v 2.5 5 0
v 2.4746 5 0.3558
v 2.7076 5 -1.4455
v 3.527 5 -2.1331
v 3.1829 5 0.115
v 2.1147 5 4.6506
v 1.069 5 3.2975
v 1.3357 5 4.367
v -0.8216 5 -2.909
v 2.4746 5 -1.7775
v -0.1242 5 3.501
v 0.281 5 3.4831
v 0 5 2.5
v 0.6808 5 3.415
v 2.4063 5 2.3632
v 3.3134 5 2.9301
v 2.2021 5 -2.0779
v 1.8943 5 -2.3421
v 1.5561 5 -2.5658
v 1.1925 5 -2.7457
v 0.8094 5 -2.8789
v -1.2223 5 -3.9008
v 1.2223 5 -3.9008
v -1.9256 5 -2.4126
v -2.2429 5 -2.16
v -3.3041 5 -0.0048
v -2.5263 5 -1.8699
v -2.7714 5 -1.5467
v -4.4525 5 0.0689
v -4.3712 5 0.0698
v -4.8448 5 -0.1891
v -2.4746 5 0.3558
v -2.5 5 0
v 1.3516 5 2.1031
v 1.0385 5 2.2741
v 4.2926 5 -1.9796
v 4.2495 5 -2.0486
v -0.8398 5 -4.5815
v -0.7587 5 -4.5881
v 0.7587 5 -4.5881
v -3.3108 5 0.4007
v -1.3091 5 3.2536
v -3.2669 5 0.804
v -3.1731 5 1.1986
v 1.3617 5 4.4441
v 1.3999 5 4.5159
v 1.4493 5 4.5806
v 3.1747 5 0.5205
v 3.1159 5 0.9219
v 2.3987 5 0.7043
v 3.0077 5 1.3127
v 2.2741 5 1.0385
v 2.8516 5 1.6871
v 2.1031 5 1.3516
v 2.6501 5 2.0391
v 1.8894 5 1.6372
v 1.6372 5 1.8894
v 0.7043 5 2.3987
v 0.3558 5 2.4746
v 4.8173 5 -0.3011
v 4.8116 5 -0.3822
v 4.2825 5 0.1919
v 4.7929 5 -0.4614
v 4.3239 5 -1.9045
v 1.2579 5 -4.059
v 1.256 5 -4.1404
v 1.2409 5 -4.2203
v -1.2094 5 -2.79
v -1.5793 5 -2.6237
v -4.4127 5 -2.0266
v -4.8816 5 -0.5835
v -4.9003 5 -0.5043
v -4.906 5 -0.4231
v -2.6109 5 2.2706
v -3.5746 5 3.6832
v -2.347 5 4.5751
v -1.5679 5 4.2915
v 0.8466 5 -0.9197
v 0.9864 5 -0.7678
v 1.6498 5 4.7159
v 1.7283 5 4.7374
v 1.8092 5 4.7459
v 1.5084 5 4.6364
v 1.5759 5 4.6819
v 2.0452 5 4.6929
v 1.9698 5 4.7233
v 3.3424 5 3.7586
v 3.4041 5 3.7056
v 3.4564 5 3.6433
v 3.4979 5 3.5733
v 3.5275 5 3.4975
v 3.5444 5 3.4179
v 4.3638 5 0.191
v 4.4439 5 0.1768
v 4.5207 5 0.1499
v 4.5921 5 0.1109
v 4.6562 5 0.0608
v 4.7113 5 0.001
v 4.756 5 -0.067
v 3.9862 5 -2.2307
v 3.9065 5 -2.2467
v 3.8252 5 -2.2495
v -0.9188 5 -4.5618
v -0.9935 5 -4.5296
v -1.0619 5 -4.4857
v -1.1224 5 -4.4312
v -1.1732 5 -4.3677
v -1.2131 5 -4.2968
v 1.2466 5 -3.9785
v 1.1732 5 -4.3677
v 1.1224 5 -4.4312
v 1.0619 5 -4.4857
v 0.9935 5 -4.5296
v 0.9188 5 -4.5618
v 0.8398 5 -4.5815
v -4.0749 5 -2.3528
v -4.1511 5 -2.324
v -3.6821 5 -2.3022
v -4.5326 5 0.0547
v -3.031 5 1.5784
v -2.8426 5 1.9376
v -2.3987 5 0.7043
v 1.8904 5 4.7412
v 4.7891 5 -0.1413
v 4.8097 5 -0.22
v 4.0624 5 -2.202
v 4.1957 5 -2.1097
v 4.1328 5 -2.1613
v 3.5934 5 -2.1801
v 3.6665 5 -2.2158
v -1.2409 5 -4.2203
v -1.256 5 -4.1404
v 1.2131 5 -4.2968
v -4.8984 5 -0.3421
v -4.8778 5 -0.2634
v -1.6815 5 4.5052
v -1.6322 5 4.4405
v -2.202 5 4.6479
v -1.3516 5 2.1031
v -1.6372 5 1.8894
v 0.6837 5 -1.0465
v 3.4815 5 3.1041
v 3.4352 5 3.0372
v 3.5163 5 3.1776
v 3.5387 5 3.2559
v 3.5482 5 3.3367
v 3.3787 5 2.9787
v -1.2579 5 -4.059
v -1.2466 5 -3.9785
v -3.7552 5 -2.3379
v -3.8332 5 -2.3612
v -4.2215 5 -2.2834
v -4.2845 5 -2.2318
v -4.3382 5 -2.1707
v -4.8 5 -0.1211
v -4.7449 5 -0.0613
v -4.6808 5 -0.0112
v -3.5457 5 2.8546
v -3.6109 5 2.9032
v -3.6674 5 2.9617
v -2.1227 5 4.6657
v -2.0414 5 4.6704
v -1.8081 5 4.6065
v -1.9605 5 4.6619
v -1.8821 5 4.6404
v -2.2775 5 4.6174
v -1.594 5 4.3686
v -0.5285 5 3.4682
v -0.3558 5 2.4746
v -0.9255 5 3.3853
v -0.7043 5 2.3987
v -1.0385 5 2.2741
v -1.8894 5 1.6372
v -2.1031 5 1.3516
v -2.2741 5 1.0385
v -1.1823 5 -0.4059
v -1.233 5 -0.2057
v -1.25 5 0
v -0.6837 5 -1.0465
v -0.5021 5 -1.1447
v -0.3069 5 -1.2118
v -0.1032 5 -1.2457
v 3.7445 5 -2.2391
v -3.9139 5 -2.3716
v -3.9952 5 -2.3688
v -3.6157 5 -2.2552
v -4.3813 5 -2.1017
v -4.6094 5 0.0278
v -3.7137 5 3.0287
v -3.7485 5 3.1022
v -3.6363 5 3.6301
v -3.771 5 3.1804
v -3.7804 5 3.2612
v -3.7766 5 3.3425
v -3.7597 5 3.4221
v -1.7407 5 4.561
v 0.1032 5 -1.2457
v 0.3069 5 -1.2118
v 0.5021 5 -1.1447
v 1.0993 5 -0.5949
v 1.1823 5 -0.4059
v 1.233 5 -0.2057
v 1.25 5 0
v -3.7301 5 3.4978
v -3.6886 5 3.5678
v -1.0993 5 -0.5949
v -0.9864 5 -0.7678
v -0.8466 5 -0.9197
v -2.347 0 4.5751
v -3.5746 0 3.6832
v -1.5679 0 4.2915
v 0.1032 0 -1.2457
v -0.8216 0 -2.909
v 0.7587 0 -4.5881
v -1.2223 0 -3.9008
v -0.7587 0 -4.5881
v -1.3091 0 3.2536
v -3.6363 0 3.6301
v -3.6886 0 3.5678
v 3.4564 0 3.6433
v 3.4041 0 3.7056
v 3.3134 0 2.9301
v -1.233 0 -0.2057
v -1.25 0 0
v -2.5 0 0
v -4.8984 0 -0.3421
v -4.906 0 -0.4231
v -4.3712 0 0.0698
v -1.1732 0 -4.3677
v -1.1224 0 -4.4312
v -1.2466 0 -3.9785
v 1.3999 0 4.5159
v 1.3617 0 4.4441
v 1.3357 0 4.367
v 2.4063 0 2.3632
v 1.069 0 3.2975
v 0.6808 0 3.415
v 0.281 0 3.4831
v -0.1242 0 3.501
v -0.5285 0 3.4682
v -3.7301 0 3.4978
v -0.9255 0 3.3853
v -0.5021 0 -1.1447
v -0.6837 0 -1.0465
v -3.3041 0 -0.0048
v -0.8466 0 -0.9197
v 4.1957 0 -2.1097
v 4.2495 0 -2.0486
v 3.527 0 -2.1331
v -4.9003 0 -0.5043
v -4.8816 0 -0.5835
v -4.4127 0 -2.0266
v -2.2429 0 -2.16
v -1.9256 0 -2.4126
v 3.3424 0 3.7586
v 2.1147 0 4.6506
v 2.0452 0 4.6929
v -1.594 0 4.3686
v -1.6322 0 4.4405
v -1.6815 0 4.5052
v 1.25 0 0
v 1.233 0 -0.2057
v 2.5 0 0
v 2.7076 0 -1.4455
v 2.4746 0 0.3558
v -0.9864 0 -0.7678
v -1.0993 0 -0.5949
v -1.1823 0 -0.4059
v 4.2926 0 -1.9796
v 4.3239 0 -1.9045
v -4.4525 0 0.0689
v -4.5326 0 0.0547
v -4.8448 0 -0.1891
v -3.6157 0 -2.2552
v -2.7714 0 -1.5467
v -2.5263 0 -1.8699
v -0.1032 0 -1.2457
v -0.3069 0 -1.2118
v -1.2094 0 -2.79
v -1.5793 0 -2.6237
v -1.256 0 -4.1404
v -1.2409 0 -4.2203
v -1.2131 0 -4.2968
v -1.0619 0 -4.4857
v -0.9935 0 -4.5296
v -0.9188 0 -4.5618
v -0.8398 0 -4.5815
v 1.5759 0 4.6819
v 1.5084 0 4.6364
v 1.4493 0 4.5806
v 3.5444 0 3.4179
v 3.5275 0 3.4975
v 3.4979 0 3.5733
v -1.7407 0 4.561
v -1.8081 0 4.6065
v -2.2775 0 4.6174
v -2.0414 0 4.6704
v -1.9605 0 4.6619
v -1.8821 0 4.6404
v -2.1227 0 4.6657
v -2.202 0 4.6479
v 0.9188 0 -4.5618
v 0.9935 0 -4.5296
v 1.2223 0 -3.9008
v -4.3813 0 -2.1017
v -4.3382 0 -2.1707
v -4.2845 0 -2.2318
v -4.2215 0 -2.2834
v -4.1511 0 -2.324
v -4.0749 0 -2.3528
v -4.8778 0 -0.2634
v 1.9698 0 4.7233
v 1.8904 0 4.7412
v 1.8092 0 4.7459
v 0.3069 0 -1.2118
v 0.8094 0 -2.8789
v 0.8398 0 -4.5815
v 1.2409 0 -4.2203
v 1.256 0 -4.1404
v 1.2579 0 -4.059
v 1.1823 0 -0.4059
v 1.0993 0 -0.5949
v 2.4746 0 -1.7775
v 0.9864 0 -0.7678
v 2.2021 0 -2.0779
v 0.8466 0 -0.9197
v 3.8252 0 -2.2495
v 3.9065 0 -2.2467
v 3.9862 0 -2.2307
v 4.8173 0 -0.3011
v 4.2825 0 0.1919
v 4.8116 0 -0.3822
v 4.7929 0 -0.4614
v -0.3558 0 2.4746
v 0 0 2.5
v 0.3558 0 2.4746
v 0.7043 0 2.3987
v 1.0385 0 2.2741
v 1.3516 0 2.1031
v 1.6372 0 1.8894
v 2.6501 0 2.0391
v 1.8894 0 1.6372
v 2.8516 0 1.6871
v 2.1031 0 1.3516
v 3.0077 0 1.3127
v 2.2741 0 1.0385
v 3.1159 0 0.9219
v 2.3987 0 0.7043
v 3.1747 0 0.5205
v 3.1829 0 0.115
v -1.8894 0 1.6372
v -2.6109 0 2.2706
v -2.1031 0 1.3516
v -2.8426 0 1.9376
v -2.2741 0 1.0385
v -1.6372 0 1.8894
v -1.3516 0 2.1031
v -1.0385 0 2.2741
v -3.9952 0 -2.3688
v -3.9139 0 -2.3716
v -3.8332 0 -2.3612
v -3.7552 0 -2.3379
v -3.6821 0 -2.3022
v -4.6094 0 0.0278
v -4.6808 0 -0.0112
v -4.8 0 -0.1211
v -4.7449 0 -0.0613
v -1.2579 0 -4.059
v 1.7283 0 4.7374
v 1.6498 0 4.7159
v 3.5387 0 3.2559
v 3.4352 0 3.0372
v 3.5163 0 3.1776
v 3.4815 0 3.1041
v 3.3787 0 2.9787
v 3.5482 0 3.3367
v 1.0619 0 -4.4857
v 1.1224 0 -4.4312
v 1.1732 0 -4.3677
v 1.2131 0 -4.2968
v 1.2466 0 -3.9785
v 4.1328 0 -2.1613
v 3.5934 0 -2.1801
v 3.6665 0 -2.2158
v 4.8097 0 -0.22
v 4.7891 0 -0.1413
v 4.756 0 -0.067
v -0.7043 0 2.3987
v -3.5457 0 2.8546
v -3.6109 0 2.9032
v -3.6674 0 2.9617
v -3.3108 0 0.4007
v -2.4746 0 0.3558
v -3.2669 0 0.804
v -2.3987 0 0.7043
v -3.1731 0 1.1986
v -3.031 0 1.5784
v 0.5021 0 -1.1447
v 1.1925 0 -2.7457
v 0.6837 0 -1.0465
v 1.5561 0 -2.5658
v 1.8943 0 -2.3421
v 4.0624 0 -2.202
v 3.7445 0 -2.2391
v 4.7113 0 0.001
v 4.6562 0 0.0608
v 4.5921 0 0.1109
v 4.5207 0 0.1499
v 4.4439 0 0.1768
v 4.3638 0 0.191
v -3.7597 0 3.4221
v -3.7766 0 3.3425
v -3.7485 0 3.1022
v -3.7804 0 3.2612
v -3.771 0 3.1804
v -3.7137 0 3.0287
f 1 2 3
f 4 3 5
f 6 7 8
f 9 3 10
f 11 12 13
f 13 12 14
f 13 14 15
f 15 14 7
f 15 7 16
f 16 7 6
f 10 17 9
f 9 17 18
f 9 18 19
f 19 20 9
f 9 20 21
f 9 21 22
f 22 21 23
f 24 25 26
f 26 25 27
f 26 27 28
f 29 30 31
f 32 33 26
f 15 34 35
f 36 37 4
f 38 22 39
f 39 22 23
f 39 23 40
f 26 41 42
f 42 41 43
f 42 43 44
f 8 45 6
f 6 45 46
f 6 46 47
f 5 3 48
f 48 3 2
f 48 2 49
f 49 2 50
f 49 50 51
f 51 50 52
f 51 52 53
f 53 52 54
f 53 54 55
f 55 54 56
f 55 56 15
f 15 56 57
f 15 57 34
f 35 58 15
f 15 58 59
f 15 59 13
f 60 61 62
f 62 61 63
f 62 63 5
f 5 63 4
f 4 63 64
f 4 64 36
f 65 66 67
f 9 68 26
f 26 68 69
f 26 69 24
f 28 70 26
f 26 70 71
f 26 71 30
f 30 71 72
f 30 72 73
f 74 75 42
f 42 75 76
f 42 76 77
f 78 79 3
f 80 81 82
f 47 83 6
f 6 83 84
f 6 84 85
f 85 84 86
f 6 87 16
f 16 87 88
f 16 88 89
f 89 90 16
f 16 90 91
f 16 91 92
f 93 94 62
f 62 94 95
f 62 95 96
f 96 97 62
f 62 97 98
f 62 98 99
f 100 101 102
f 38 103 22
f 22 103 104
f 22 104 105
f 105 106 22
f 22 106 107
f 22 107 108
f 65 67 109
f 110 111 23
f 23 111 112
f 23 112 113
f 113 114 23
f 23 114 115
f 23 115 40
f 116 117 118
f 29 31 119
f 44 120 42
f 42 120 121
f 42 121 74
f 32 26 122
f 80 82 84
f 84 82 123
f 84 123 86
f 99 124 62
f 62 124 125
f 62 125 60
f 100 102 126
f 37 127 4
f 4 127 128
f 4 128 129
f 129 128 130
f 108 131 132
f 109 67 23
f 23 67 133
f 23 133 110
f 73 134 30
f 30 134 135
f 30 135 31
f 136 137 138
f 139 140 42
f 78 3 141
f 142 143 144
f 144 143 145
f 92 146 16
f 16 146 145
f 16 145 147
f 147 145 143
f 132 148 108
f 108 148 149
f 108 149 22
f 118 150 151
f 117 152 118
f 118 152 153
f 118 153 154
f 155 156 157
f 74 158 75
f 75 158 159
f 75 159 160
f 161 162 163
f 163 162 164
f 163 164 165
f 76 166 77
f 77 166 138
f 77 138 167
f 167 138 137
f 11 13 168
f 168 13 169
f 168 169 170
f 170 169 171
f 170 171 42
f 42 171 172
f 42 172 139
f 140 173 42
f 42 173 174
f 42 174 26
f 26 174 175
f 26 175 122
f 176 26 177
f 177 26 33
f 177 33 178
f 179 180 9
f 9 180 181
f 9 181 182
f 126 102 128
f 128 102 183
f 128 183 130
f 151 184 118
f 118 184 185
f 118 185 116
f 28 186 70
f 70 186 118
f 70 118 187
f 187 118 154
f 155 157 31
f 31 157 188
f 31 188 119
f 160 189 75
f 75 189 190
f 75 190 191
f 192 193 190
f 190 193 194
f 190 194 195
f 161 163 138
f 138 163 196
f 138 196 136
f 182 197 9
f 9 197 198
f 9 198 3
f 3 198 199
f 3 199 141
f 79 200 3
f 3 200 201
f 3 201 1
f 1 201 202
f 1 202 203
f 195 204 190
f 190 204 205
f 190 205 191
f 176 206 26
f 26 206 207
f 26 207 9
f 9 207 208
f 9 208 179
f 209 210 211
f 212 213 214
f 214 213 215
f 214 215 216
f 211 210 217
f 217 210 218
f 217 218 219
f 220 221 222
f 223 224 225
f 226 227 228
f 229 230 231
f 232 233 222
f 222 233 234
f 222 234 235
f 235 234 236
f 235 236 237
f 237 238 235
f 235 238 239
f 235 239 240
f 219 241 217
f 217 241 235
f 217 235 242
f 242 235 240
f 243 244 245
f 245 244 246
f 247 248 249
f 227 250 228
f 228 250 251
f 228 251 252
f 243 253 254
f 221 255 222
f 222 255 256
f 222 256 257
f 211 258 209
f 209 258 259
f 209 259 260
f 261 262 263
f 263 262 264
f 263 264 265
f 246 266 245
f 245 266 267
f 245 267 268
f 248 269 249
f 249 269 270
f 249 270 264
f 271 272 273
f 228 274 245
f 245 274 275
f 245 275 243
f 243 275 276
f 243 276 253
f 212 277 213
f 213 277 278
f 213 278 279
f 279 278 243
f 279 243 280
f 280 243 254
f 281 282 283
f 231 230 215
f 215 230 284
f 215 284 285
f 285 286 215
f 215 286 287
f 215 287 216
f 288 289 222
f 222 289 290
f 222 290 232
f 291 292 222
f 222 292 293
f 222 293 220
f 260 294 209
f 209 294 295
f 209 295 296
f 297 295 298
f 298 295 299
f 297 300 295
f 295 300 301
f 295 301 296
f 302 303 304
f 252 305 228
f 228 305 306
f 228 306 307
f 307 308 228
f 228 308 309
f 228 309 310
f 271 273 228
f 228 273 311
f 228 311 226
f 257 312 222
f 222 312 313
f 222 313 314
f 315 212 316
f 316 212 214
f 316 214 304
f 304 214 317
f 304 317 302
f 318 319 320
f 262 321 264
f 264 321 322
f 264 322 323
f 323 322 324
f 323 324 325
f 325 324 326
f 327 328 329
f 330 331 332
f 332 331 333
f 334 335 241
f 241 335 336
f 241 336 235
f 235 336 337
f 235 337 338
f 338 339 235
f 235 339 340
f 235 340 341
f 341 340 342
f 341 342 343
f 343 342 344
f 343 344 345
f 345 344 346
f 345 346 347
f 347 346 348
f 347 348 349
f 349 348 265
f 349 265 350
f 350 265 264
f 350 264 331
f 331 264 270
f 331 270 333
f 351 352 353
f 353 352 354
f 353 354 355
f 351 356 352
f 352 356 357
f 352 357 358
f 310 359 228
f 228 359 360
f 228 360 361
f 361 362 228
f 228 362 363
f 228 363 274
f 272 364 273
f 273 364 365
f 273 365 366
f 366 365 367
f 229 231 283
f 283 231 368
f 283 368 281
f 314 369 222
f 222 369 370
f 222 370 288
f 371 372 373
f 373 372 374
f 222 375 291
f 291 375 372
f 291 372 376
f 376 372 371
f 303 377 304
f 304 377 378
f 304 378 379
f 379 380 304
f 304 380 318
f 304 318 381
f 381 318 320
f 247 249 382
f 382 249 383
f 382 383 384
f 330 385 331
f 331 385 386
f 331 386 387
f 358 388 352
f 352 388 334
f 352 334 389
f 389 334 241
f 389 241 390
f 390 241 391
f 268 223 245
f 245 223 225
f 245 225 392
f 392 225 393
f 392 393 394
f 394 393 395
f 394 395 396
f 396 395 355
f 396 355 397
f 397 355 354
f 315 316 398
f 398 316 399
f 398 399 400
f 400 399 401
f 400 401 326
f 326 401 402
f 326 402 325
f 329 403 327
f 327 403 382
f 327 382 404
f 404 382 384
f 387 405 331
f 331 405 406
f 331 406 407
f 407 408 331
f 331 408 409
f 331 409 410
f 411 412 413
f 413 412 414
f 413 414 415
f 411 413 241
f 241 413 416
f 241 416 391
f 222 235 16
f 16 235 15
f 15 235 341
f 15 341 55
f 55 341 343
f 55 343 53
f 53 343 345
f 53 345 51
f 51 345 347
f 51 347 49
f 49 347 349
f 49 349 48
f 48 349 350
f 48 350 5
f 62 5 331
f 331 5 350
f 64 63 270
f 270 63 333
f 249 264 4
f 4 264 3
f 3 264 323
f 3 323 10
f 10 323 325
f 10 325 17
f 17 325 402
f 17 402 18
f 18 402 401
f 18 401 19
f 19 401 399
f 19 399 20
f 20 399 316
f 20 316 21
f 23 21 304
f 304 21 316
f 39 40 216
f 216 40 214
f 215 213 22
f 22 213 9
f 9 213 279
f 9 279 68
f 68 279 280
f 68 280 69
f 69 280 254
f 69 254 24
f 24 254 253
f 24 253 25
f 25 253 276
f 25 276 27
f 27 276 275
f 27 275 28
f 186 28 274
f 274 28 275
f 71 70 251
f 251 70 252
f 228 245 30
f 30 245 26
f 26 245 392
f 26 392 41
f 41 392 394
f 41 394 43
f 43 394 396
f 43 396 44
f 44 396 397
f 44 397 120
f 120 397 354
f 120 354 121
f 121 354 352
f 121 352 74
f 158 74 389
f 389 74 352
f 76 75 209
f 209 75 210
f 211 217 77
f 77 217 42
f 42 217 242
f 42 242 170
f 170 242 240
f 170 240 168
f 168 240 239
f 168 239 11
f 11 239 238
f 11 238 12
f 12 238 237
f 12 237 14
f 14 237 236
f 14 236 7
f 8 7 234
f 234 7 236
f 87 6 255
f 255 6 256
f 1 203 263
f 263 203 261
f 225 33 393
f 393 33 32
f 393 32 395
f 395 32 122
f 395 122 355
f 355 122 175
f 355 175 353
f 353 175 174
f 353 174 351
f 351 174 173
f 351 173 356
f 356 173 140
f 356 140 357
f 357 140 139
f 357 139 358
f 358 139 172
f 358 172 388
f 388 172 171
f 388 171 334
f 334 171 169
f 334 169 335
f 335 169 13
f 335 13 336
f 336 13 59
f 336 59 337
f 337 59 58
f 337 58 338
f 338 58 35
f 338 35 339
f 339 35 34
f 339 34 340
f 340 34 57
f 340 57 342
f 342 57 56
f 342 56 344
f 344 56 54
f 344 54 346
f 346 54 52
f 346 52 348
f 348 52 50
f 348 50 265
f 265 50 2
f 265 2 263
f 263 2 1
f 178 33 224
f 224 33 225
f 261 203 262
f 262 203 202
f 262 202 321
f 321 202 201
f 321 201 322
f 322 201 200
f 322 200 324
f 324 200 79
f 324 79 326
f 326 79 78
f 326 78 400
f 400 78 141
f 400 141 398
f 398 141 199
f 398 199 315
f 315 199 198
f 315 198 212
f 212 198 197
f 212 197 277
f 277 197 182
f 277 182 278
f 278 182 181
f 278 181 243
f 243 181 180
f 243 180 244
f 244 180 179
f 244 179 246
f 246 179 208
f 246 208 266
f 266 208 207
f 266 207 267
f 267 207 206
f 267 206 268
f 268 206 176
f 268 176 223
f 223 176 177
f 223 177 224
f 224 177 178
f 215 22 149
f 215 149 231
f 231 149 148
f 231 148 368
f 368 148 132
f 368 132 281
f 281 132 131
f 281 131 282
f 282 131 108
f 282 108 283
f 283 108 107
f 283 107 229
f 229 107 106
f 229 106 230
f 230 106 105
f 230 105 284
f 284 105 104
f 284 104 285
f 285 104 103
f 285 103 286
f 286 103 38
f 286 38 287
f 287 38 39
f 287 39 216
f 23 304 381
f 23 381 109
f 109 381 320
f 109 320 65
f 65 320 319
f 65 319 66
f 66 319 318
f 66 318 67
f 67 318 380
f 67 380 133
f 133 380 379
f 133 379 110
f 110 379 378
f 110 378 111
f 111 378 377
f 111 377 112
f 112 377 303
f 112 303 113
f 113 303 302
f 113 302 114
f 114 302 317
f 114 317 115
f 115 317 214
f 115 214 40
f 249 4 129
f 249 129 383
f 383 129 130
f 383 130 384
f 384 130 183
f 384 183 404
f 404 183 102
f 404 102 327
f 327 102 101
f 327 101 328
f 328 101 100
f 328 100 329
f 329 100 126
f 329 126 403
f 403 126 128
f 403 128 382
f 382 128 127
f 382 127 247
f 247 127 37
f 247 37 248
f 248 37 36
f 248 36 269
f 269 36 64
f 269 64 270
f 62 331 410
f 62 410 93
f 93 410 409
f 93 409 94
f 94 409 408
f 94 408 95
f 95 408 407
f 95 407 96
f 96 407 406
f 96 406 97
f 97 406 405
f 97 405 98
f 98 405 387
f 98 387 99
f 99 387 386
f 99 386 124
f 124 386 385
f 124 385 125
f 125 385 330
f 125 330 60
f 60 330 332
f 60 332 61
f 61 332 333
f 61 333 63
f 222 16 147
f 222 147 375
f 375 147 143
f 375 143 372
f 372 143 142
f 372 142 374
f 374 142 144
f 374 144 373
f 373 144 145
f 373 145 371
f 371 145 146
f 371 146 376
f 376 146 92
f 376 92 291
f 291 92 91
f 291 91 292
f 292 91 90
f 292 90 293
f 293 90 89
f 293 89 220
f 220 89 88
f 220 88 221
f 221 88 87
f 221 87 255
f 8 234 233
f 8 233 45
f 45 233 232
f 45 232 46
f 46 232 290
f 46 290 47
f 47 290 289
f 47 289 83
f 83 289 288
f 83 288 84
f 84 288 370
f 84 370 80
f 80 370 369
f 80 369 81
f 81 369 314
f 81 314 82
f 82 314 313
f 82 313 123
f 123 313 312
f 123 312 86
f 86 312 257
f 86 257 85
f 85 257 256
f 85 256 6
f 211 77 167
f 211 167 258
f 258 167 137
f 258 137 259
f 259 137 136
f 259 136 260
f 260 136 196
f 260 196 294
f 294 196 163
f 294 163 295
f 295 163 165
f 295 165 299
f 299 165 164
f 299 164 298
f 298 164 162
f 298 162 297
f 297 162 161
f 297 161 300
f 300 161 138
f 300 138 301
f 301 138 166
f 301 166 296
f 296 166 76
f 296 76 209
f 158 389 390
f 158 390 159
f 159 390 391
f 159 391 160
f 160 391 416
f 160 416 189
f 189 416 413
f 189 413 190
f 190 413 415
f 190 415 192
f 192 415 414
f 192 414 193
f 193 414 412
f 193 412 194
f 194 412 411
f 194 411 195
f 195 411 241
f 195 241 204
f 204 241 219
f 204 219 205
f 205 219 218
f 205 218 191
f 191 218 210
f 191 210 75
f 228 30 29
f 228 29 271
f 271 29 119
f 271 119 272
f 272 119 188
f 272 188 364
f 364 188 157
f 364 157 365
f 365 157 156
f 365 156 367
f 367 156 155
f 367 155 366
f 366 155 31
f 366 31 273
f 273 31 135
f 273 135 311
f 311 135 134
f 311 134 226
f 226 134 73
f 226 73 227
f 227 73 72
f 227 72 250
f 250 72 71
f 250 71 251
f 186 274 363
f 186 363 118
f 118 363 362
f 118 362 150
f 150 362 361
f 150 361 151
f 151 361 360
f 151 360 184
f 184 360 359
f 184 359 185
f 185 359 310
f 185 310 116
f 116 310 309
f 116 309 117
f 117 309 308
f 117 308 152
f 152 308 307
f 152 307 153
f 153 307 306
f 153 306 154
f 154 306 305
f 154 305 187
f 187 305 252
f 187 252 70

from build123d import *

# Parameters (mm, degrees)
BOSS_EXTRUDE1_DEPTH = 5
CUT_EXTRUDE1_DEPTH  = 10
FILLET1_R           = 0.5


with BuildPart() as part:
    # Sketch1 → Boss-Extrude1 (new body)
    with BuildSketch(Plane(origin=(0, 0, 0), x_dir=(1, 0, 0), z_dir=(0, 1, 0))):
        with BuildLine():
            Line((-1.5, 4.588107716), (-0.821593865, 2.908993609))
            ThreePointArc((-0.821593865, 2.908993609), (-1.925604645, 2.412618737), (-2.771400023, 1.546675324))
            Line((-2.771400023, 1.546675324), (-4.18358485, 2.731639091))
            Line((-4.18358485, 2.731639091), (-5.110635833, -0.121530457))
            Line((-5.110635833, -0.121530457), (-3.304064395, 0.004797324))
            ThreePointArc((-3.304064395, 0.004797324), (-3.173141931, -1.198567594), (-2.610945952, -2.27055803))
            Line((-2.610945952, -2.27055803), (-4.174302575, -3.24745167))
            Line((-4.174302575, -3.24745167), (-1.747251592, -5.010807427))
            Line((-1.747251592, -5.010807427), (-1.309135176, -3.253618458))
            ThreePointArc((-1.309135176, -3.253618458), (-0.124209863, -3.500964005), (1.069041739, -3.297547119))
            Line((1.069041739, -3.297547119), (1.515019036, -5.086264359))
            Line((1.515019036, -5.086264359), (3.942070019, -3.322908602))
            Line((3.942070019, -3.322908602), (2.406269417, -2.363233875))
            ThreePointArc((2.406269417, -2.363233875), (3.007671071, -1.312736913), (3.182945139, -0.115027927))
            Line((3.182945139, -0.115027927), (5.02193089, -0.243622337))
            Line((5.02193089, -0.243622337), (4.094879907, 2.609547212))
            Line((4.094879907, 2.609547212), (2.707586519, 1.445469841))
            ThreePointArc((2.707586519, 1.445469841), (1.894347869, 2.342058217), (0.809421598, 2.878866192))
            Line((0.809421598, 2.878866192), (1.5, 4.588107716))
            Line((1.5, 4.588107716), (-1.5, 4.588107716))
        make_face()
    extrude(amount=BOSS_EXTRUDE1_DEPTH)

    # Sketch2 → Cut-Extrude1 (cut)
    with BuildSketch(Plane(origin=(0, 5, 0), x_dir=(1, 0, 0), z_dir=(0, 1, 0))):
        with BuildLine():
            Line((-1.25, 0), (-2.5, 0))
            ThreePointArc((-2.5, 0), (0, -2.5), (2.5, 0))
            Line((2.5, 0), (1.25, 0))
            ThreePointArc((1.25, 0), (0, 1.25), (-1.25, 0))
        make_face()
    extrude(amount=-CUT_EXTRUDE1_DEPTH, mode=Mode.SUBTRACT)

    # Fillet1
    fillet1_edges = [part.edges().sort_by_distance(p)[0] for p in [
        (3.942070019, 2.5, 3.322908602),
        (1.515019036, 2.5, 5.086264359),
        (-1.747251592, 2.5, 5.010807427),
        (-4.174302575, 2.5, 3.24745167),
        (-5.110635833, 2.5, 0.121530457),
        (-4.18358485, 2.5, -2.731639091),
        (-1.5, 2.5, -4.588107716),
        (1.5, 2.5, -4.588107716),
        (4.094879907, 2.5, -2.609547212),
        (5.02193089, 2.5, 0.243622337),
    ]]
    fillet(fillet1_edges, radius=FILLET1_R)


solid = part.part
